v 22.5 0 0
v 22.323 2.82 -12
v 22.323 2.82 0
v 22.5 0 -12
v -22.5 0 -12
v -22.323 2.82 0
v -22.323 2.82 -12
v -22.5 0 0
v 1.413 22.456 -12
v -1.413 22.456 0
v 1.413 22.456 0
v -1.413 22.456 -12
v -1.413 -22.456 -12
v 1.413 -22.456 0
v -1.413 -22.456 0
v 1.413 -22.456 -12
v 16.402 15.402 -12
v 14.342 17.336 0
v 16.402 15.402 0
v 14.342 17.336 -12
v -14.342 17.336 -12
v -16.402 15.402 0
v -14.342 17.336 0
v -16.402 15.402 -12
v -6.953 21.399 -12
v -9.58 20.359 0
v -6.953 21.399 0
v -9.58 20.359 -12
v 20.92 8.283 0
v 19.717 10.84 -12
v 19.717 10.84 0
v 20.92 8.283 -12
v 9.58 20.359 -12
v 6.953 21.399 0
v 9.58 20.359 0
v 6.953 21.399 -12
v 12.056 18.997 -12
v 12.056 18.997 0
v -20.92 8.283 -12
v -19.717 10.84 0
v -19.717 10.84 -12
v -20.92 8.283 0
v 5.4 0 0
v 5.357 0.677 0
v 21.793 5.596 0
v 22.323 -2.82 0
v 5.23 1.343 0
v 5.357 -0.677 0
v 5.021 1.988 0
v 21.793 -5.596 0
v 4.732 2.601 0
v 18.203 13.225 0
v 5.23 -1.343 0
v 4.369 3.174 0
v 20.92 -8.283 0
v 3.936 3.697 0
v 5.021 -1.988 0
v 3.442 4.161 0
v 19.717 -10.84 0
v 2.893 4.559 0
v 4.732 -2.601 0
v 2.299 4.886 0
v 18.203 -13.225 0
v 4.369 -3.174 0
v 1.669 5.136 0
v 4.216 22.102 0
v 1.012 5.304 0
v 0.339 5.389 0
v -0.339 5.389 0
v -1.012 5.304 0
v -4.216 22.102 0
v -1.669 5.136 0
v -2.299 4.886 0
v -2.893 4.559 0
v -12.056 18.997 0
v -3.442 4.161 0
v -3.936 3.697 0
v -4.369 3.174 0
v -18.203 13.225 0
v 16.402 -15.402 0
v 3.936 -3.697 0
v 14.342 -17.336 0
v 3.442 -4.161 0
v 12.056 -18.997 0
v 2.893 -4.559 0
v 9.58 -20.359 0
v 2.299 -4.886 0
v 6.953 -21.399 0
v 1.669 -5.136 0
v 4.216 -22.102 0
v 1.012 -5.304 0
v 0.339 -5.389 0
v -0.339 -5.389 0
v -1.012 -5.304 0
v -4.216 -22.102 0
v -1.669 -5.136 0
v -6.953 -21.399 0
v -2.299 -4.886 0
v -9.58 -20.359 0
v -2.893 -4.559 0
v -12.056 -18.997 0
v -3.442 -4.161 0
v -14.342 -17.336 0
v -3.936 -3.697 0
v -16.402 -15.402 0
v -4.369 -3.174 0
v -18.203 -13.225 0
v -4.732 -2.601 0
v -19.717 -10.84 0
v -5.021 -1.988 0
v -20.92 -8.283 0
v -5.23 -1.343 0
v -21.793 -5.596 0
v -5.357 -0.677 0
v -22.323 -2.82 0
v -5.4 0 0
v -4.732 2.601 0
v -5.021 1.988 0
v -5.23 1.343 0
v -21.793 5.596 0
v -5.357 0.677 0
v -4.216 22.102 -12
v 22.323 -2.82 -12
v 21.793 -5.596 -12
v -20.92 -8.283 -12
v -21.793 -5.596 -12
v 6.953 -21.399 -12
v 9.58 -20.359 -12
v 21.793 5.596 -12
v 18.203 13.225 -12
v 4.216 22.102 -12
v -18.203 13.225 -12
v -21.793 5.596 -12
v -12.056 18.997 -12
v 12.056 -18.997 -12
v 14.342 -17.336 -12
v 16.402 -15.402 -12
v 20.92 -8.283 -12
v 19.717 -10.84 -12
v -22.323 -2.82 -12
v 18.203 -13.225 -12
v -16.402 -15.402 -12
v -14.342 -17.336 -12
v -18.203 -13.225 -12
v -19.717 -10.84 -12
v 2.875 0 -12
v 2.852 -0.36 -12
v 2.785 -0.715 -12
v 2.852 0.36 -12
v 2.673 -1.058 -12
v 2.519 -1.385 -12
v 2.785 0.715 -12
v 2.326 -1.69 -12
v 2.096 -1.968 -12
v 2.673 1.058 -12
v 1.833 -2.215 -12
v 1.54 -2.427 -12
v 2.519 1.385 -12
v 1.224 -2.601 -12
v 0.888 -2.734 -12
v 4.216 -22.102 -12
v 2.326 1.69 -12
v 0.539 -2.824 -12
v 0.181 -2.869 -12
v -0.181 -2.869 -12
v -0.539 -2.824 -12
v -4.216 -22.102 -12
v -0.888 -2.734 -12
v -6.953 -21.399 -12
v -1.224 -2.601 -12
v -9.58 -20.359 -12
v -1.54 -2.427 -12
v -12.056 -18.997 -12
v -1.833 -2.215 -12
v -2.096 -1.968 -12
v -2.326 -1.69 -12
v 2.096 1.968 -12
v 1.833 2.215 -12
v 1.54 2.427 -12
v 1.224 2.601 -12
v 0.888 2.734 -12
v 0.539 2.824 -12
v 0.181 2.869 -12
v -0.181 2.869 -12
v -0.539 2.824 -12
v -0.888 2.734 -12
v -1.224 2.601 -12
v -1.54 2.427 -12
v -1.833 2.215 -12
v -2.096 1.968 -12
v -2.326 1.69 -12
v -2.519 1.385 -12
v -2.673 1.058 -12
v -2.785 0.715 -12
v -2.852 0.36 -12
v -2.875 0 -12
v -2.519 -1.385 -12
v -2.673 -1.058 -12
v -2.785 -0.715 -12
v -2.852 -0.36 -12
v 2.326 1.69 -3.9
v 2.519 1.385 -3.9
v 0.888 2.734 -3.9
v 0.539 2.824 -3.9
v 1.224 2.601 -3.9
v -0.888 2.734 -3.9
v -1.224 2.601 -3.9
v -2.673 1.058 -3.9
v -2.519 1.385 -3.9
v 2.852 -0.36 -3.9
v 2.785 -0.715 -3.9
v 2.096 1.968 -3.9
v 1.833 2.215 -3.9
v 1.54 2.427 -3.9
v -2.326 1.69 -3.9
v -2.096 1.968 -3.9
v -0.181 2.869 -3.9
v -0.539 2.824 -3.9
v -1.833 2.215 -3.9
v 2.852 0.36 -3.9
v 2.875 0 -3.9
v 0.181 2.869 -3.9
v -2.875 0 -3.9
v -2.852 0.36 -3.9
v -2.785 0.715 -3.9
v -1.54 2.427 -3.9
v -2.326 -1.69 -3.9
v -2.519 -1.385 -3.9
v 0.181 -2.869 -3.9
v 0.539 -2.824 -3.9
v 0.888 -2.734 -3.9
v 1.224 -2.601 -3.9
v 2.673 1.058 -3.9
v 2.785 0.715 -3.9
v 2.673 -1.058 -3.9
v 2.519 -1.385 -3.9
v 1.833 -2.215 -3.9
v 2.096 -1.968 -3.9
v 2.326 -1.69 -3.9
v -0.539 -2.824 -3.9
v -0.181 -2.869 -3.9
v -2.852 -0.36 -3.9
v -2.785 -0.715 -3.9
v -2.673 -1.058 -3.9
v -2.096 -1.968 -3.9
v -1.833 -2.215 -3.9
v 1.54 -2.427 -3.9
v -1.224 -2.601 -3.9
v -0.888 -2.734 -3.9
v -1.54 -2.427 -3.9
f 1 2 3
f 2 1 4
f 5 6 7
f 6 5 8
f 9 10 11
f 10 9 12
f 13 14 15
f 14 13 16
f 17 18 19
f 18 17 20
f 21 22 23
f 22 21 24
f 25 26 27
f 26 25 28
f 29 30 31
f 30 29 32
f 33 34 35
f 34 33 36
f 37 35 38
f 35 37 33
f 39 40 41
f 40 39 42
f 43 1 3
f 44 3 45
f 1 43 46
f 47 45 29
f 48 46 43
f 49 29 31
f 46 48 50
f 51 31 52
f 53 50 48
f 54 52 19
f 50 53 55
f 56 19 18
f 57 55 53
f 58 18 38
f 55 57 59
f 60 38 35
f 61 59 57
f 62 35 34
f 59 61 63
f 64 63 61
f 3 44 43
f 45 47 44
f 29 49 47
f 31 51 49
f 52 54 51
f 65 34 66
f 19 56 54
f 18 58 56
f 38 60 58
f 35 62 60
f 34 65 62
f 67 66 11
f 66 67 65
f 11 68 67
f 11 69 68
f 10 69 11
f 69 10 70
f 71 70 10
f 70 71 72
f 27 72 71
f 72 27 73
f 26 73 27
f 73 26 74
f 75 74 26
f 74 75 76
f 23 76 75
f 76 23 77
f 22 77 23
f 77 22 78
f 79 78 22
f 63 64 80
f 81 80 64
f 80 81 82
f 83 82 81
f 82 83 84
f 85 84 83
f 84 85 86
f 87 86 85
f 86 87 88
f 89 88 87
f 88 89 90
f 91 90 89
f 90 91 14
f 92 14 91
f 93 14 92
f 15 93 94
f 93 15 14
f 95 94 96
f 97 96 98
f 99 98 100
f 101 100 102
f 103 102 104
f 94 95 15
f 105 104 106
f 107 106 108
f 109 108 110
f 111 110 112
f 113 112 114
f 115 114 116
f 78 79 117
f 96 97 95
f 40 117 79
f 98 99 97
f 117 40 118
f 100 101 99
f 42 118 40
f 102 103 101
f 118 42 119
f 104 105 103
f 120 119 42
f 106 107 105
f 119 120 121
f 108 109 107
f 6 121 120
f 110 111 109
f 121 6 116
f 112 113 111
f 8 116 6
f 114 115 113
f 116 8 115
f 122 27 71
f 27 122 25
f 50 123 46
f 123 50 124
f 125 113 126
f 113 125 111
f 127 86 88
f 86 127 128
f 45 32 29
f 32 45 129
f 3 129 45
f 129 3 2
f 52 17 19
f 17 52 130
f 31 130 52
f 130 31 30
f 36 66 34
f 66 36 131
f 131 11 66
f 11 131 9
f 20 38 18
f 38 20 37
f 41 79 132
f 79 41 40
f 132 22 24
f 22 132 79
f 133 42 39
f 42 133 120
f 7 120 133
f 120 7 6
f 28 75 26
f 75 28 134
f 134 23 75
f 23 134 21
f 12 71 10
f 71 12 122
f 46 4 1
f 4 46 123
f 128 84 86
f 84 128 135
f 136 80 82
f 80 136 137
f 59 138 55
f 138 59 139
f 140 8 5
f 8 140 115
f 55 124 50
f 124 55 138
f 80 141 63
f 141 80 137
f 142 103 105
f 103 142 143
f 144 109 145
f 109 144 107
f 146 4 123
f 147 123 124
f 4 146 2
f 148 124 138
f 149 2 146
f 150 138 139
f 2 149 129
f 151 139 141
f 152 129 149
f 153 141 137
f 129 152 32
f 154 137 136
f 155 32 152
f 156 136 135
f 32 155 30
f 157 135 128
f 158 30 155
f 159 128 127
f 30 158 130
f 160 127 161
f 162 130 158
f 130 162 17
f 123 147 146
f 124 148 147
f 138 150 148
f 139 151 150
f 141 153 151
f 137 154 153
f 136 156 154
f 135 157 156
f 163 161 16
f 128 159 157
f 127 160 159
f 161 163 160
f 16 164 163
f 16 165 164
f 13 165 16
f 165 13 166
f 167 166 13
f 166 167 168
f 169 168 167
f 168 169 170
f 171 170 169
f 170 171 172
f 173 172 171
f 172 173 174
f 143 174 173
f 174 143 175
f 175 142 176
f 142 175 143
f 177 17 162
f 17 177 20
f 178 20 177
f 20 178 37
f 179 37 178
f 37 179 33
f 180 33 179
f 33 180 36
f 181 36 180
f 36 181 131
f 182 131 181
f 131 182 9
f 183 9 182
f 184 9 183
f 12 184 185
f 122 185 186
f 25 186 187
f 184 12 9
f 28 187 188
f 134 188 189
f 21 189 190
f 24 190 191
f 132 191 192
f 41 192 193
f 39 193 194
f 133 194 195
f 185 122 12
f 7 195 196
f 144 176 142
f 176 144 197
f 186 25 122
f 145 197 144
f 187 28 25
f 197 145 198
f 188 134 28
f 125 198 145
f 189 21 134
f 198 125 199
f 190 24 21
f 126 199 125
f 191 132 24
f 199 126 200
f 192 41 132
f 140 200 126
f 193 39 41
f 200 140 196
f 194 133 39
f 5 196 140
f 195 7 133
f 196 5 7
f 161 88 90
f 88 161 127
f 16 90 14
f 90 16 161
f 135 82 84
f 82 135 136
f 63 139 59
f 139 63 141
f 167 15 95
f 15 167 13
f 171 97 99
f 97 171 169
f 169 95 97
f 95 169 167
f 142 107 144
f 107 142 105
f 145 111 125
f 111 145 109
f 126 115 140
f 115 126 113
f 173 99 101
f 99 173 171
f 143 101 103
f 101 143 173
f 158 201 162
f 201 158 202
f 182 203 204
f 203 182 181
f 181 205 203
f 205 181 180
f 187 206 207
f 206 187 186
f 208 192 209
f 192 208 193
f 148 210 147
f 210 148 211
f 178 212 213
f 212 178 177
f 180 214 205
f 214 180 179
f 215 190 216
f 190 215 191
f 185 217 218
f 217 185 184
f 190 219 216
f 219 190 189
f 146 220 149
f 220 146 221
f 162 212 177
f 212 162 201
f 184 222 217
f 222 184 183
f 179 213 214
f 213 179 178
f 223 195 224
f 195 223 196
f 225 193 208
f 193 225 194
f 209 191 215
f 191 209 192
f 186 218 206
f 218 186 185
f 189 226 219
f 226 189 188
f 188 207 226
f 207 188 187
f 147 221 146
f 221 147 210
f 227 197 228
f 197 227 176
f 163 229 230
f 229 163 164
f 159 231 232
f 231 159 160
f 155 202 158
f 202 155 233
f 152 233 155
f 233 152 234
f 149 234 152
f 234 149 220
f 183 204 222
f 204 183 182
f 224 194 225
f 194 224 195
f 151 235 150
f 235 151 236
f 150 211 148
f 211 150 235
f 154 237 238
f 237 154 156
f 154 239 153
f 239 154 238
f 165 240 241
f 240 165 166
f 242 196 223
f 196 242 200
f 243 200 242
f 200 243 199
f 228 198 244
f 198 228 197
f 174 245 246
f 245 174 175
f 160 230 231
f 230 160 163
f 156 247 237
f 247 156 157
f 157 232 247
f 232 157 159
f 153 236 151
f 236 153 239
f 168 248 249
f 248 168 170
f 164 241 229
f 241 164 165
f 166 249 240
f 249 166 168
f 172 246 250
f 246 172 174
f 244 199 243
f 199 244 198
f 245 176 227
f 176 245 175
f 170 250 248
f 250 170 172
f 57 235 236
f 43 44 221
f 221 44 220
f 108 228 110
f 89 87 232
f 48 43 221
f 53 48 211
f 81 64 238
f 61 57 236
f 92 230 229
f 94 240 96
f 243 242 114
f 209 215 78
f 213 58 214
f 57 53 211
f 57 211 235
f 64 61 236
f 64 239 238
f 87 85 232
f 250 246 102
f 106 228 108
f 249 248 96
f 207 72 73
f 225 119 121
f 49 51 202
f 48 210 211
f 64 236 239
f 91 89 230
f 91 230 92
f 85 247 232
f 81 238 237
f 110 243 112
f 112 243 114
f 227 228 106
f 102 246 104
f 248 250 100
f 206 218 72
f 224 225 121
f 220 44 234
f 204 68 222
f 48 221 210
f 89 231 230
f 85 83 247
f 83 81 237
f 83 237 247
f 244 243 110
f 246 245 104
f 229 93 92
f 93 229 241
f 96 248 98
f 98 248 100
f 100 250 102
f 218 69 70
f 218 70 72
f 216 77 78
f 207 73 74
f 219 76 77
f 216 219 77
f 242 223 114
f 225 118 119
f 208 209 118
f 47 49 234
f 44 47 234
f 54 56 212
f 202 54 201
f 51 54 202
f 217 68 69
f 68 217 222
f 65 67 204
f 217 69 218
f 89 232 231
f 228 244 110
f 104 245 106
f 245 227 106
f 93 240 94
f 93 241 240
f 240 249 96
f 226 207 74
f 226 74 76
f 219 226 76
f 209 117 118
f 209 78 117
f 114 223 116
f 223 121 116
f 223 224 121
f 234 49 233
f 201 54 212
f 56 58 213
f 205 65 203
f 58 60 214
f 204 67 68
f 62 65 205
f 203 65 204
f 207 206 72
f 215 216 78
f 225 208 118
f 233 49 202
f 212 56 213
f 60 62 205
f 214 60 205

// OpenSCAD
$fn = 50;


difference() {
	union() {
		translate(v = [0, 0, -12.0000000000]) {
			cylinder(h = 12, r = 22.5000000000);
		}
		translate(v = [0, 0, -15.0000000000]) {
			cylinder(h = 15, r = 2.8750000000);
		}
	}
	union() {
		translate(v = [0, 0, 0]) {
			rotate(a = [0, 0, 0]) {
				difference() {
					union() {
						translate(v = [0, 0, -15.0000000000]) {
							cylinder(h = 15, r = 2.6000000000);
						}
						translate(v = [0, 0, -3.9000000000]) {
							cylinder(h = 3.9000000000, r1 = 2.8750000000, r2 = 5.4000000000);
						}
						translate(v = [0, 0, -15.0000000000]) {
							cylinder(h = 15, r = 2.8750000000);
						}
						translate(v = [0, 0, -15.0000000000]) {
							cylinder(h = 15, r = 2.6000000000);
						}
					}
					union();
				}
			}
		}
	}
}
